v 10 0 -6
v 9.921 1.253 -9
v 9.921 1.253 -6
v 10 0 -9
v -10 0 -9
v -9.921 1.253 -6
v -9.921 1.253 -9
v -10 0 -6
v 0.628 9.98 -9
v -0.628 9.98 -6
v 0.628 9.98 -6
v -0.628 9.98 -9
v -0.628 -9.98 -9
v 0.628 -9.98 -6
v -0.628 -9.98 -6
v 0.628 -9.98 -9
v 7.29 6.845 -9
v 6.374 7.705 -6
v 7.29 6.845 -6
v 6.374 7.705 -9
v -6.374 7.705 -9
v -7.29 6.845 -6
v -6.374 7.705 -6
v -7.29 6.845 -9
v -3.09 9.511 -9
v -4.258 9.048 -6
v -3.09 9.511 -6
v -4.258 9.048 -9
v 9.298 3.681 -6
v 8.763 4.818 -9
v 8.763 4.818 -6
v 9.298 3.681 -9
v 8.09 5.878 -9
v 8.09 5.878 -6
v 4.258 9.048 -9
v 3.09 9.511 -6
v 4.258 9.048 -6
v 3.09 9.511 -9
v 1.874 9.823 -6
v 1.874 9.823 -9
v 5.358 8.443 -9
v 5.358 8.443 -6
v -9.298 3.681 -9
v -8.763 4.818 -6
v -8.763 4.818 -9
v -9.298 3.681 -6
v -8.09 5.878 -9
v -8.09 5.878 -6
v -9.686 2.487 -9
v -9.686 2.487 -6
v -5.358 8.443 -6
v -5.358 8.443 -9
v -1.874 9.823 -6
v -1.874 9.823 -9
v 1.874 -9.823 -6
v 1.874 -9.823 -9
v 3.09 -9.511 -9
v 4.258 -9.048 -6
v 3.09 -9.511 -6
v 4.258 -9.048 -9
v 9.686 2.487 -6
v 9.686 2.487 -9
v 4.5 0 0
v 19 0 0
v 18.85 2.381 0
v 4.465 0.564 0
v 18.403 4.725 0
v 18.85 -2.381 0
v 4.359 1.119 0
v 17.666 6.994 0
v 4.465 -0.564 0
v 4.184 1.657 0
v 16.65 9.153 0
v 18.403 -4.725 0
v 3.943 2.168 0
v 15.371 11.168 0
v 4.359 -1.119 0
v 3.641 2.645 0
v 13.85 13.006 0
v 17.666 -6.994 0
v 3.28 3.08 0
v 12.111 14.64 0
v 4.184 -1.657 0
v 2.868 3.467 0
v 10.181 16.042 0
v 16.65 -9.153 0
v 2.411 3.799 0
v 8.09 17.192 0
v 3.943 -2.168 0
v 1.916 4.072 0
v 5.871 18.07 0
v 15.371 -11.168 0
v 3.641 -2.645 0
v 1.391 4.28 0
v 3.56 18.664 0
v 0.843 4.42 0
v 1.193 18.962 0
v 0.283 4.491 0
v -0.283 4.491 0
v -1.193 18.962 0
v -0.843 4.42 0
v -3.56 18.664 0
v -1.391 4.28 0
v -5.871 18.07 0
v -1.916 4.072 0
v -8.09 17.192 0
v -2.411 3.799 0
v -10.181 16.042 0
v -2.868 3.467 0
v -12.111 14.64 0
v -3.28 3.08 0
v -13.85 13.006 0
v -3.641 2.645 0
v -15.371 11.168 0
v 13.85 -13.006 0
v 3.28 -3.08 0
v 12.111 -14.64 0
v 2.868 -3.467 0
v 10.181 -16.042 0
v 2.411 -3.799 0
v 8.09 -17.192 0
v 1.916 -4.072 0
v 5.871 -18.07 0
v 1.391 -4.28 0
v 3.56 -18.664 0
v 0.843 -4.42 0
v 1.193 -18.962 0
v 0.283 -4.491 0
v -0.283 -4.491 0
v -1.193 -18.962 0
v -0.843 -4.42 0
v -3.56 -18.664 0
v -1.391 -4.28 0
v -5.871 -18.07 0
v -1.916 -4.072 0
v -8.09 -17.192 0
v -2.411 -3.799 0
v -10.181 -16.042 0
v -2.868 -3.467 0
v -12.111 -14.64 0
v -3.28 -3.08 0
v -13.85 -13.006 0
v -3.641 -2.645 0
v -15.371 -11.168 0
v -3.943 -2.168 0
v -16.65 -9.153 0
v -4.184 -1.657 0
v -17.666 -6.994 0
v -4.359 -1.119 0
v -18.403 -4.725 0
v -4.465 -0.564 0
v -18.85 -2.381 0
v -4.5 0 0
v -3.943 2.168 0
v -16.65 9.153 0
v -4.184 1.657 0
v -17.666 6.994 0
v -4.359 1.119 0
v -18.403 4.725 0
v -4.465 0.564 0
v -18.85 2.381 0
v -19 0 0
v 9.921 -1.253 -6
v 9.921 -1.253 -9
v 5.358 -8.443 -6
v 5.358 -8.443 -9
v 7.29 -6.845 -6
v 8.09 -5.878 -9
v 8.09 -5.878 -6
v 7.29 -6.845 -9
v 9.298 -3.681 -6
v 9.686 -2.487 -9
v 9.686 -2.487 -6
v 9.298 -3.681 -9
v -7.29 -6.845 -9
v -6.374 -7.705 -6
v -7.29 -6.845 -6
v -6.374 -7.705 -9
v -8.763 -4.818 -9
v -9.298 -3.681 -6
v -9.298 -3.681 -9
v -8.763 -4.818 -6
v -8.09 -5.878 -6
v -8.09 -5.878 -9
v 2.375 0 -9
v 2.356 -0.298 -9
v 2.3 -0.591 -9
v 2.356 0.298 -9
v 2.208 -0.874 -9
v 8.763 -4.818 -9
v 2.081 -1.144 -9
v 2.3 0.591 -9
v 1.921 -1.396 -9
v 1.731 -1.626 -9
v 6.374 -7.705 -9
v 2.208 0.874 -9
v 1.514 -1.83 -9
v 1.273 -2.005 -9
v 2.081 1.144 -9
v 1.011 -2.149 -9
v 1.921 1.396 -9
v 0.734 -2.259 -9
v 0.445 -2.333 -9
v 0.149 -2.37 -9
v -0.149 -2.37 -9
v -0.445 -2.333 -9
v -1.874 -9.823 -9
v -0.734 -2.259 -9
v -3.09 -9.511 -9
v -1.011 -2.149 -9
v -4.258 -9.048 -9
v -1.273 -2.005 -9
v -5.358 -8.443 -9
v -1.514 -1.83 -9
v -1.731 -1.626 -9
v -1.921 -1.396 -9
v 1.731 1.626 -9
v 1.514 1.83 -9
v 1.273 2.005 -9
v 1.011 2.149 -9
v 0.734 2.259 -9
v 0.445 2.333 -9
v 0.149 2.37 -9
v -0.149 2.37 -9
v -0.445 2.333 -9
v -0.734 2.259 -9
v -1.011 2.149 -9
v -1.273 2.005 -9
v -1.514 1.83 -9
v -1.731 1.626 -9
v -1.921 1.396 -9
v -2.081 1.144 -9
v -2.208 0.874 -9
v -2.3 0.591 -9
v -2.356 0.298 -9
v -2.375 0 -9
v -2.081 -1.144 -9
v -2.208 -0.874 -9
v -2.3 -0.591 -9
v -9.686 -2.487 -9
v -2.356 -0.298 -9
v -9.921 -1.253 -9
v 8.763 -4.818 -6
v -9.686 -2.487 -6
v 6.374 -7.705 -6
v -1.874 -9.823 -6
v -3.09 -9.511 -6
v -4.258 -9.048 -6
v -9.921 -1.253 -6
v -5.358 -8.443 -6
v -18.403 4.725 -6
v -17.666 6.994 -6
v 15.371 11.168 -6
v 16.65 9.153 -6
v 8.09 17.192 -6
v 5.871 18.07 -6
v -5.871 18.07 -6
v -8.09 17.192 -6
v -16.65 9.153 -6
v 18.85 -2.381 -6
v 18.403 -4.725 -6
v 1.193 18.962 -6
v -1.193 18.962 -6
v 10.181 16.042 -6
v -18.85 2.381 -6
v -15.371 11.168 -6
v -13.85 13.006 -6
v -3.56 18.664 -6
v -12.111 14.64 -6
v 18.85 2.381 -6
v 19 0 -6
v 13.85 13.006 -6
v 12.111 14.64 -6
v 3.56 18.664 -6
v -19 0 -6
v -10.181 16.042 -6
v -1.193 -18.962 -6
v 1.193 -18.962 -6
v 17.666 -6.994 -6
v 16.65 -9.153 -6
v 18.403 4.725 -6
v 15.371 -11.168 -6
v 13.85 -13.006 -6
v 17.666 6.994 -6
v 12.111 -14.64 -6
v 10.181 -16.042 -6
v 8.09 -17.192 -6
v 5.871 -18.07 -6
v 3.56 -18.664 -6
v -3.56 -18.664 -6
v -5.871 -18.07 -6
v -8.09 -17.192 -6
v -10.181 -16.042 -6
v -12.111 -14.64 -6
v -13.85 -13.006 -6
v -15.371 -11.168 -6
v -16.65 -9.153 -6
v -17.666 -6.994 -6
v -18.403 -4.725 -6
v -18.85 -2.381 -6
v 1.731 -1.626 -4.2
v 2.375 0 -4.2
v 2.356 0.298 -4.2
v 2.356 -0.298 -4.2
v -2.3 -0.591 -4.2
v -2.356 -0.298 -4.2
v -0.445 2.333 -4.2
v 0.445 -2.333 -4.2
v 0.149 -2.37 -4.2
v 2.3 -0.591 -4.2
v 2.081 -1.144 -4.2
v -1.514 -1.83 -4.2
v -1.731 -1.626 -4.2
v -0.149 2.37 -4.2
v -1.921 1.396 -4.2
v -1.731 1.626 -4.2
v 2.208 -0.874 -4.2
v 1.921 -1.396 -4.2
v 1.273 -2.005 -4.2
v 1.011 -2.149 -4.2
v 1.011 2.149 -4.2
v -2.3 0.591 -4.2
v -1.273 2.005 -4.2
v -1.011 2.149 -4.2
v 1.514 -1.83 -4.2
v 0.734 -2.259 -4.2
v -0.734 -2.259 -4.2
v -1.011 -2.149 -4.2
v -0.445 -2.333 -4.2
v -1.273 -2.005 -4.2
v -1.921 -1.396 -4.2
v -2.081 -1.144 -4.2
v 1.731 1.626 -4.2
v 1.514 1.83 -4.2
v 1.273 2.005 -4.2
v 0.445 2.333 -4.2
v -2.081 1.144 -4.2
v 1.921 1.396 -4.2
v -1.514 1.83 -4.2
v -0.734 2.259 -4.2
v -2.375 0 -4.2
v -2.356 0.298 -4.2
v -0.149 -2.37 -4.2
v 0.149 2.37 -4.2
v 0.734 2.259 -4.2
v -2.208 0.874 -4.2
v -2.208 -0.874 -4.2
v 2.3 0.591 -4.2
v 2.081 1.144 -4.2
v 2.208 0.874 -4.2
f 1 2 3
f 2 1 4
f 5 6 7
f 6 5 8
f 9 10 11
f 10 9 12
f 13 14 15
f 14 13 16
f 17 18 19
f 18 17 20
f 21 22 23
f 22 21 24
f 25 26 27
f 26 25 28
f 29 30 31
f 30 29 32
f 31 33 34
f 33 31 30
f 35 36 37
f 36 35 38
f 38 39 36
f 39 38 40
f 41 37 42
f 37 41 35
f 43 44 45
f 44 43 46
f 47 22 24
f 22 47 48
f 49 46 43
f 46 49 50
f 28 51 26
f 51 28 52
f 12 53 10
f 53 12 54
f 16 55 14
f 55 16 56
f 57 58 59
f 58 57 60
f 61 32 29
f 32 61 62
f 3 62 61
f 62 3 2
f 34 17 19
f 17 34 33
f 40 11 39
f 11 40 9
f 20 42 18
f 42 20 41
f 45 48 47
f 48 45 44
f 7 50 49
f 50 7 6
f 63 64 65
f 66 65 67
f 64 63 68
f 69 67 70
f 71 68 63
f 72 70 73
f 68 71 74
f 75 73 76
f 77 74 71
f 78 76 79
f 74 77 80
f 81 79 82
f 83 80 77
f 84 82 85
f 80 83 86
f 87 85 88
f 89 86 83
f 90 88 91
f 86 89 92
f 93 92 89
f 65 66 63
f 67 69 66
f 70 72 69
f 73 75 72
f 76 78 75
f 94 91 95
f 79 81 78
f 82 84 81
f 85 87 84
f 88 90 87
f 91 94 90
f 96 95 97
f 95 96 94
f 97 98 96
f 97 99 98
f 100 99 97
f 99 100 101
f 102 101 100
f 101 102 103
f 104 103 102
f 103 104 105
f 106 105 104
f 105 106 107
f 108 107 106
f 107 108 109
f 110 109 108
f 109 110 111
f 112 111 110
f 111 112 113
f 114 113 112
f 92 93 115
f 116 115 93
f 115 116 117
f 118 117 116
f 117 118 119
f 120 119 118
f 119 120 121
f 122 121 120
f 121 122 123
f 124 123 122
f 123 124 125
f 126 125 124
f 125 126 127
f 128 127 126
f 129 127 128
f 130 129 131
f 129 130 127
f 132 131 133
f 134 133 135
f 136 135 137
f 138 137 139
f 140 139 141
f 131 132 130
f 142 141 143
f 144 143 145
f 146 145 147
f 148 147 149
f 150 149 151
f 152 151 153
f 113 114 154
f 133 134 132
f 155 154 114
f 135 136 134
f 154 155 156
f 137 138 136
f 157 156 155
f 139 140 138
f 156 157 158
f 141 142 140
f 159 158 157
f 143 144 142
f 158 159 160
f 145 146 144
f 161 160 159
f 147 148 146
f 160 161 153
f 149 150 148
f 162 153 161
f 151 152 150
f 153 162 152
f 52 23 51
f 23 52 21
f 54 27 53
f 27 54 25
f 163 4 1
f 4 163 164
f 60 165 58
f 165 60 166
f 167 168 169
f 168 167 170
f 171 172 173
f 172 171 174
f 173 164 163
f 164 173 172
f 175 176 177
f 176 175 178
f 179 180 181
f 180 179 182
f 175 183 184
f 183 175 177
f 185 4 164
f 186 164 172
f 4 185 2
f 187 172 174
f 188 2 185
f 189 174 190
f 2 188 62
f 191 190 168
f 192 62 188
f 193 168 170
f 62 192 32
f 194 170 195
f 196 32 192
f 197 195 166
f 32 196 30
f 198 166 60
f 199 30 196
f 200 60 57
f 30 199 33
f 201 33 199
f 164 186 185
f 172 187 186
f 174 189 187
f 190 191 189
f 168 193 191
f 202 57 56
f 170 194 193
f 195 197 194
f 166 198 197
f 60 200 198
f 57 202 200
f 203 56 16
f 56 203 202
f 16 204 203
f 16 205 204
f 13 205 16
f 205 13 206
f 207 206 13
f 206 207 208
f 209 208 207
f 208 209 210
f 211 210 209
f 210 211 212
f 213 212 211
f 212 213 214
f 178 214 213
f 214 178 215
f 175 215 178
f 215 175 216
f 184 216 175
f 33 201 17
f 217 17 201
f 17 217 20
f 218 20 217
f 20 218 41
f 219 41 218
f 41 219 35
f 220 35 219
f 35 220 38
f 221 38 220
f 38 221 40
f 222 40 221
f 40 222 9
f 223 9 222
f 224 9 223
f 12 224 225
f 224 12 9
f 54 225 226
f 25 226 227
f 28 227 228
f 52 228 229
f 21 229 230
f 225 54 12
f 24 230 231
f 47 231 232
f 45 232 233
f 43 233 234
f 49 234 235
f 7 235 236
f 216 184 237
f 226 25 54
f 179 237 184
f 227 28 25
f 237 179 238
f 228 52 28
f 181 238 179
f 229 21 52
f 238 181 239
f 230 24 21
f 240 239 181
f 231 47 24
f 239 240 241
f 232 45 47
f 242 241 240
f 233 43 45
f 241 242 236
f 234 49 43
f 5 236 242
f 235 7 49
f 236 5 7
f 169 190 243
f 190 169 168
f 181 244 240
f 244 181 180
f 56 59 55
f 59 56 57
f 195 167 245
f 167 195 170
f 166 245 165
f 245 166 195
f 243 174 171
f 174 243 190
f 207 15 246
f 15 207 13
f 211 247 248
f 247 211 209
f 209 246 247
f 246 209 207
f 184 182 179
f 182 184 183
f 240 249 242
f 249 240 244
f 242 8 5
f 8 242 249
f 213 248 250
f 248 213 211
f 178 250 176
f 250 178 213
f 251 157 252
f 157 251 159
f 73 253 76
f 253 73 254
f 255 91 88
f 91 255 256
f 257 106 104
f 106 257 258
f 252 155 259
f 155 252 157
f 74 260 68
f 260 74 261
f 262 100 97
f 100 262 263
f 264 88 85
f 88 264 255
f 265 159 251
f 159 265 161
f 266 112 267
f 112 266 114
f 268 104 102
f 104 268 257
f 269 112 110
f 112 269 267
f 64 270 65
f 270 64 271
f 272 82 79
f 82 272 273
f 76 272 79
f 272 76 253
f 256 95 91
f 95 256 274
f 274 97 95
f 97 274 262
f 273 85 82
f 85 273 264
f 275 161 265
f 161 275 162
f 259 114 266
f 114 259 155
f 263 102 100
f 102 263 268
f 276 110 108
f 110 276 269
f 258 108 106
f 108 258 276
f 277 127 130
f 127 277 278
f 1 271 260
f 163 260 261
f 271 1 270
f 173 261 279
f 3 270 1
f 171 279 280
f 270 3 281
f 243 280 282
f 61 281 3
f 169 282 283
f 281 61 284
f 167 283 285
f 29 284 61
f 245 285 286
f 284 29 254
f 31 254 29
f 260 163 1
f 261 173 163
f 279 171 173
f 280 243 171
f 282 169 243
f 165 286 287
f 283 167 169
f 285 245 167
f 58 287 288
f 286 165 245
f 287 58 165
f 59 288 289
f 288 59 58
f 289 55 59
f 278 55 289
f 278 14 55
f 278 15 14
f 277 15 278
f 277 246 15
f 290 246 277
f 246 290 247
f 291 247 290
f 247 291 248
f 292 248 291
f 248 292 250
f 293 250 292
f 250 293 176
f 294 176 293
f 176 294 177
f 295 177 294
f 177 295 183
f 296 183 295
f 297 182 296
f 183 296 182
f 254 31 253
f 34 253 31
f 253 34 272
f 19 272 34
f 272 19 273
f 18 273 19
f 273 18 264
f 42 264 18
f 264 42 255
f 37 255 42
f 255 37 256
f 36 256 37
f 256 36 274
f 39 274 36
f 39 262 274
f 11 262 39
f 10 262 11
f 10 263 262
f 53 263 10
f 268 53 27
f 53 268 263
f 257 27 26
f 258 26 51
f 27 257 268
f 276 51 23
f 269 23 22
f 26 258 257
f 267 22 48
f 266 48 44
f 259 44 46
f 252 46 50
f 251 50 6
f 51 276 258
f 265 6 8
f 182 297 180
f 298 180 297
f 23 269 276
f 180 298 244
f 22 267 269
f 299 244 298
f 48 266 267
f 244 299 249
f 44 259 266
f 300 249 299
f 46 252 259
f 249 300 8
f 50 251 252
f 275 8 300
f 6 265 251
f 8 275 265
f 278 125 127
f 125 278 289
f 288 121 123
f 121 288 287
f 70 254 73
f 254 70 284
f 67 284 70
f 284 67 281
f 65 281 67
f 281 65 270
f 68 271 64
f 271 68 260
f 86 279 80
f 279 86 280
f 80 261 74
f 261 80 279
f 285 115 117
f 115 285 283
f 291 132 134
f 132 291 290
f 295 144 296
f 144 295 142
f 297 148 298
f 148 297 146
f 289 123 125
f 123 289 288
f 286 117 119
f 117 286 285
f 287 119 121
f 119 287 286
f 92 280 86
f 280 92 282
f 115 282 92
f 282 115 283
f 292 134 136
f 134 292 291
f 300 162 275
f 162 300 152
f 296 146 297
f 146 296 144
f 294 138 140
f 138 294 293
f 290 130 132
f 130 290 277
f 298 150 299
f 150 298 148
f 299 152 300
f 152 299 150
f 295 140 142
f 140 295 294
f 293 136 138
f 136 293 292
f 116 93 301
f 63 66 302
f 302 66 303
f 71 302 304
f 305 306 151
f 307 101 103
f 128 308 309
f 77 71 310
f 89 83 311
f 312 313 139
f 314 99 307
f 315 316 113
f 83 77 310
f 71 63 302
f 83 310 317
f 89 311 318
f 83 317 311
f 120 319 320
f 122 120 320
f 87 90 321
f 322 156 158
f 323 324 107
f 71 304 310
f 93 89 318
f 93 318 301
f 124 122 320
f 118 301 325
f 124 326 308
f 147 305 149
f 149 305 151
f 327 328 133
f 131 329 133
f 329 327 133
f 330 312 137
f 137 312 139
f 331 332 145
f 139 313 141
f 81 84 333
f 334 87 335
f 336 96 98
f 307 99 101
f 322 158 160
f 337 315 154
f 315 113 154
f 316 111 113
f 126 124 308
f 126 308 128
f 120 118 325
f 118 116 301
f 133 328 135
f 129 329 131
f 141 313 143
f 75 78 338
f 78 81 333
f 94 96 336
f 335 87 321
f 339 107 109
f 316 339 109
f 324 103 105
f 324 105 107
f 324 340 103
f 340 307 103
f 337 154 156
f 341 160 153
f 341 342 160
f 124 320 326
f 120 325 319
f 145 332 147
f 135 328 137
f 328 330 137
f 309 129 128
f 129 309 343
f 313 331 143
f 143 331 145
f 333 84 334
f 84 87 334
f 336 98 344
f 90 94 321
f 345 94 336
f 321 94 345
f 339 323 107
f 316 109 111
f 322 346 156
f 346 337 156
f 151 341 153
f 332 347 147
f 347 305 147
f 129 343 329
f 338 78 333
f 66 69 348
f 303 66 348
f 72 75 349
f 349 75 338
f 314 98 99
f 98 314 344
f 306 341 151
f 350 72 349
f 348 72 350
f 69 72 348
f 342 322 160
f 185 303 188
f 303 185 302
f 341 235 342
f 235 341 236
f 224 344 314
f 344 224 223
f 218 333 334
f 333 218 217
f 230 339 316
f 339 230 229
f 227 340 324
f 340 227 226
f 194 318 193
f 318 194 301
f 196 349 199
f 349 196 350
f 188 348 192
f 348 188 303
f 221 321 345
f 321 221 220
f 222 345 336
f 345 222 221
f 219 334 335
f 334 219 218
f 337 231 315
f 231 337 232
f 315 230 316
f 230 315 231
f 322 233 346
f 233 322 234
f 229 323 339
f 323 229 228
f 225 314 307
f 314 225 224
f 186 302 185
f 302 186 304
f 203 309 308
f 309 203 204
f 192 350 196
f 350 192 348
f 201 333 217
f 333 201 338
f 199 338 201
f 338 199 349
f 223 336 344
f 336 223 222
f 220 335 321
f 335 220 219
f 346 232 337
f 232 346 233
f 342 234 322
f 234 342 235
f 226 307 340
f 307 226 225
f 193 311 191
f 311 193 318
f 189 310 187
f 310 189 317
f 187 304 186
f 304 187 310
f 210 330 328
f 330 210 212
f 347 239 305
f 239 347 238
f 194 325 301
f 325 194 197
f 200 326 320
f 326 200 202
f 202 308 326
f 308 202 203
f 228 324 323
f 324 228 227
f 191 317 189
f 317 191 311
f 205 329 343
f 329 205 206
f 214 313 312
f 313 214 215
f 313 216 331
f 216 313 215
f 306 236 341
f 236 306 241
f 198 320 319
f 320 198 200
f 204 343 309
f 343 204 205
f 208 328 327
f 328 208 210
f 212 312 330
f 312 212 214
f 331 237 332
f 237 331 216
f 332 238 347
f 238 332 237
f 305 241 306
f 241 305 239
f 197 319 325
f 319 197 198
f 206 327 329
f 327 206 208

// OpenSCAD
$fn = 50;


difference() {
	union() {
		translate(v = [0, 0, -9.0000000000]) {
			cylinder(h = 9, r = 10.0000000000);
		}
		translate(v = [0, 0, -6.0000000000]) {
			cylinder(h = 6, r = 19.0000000000);
		}
	}
	union() {
		translate(v = [0, 0, 0]) {
			rotate(a = [0, 0, 0]) {
				difference() {
					union() {
						#translate(v = [0, 0, -9.0000000000]) {
							cylinder(h = 9, r = 2.2500000000);
						}
						#translate(v = [0, 0, -4.2000000000]) {
							cylinder(h = 4.2000000000, r1 = 2.3750000000, r2 = 4.5000000000);
						}
						#translate(v = [0, 0, -9.0000000000]) {
							cylinder(h = 9, r = 2.3750000000);
						}
						#translate(v = [0, 0, -9.0000000000]) {
							cylinder(h = 9, r = 2.2500000000);
						}
					}
					union();
				}
			}
		}
	}
}
